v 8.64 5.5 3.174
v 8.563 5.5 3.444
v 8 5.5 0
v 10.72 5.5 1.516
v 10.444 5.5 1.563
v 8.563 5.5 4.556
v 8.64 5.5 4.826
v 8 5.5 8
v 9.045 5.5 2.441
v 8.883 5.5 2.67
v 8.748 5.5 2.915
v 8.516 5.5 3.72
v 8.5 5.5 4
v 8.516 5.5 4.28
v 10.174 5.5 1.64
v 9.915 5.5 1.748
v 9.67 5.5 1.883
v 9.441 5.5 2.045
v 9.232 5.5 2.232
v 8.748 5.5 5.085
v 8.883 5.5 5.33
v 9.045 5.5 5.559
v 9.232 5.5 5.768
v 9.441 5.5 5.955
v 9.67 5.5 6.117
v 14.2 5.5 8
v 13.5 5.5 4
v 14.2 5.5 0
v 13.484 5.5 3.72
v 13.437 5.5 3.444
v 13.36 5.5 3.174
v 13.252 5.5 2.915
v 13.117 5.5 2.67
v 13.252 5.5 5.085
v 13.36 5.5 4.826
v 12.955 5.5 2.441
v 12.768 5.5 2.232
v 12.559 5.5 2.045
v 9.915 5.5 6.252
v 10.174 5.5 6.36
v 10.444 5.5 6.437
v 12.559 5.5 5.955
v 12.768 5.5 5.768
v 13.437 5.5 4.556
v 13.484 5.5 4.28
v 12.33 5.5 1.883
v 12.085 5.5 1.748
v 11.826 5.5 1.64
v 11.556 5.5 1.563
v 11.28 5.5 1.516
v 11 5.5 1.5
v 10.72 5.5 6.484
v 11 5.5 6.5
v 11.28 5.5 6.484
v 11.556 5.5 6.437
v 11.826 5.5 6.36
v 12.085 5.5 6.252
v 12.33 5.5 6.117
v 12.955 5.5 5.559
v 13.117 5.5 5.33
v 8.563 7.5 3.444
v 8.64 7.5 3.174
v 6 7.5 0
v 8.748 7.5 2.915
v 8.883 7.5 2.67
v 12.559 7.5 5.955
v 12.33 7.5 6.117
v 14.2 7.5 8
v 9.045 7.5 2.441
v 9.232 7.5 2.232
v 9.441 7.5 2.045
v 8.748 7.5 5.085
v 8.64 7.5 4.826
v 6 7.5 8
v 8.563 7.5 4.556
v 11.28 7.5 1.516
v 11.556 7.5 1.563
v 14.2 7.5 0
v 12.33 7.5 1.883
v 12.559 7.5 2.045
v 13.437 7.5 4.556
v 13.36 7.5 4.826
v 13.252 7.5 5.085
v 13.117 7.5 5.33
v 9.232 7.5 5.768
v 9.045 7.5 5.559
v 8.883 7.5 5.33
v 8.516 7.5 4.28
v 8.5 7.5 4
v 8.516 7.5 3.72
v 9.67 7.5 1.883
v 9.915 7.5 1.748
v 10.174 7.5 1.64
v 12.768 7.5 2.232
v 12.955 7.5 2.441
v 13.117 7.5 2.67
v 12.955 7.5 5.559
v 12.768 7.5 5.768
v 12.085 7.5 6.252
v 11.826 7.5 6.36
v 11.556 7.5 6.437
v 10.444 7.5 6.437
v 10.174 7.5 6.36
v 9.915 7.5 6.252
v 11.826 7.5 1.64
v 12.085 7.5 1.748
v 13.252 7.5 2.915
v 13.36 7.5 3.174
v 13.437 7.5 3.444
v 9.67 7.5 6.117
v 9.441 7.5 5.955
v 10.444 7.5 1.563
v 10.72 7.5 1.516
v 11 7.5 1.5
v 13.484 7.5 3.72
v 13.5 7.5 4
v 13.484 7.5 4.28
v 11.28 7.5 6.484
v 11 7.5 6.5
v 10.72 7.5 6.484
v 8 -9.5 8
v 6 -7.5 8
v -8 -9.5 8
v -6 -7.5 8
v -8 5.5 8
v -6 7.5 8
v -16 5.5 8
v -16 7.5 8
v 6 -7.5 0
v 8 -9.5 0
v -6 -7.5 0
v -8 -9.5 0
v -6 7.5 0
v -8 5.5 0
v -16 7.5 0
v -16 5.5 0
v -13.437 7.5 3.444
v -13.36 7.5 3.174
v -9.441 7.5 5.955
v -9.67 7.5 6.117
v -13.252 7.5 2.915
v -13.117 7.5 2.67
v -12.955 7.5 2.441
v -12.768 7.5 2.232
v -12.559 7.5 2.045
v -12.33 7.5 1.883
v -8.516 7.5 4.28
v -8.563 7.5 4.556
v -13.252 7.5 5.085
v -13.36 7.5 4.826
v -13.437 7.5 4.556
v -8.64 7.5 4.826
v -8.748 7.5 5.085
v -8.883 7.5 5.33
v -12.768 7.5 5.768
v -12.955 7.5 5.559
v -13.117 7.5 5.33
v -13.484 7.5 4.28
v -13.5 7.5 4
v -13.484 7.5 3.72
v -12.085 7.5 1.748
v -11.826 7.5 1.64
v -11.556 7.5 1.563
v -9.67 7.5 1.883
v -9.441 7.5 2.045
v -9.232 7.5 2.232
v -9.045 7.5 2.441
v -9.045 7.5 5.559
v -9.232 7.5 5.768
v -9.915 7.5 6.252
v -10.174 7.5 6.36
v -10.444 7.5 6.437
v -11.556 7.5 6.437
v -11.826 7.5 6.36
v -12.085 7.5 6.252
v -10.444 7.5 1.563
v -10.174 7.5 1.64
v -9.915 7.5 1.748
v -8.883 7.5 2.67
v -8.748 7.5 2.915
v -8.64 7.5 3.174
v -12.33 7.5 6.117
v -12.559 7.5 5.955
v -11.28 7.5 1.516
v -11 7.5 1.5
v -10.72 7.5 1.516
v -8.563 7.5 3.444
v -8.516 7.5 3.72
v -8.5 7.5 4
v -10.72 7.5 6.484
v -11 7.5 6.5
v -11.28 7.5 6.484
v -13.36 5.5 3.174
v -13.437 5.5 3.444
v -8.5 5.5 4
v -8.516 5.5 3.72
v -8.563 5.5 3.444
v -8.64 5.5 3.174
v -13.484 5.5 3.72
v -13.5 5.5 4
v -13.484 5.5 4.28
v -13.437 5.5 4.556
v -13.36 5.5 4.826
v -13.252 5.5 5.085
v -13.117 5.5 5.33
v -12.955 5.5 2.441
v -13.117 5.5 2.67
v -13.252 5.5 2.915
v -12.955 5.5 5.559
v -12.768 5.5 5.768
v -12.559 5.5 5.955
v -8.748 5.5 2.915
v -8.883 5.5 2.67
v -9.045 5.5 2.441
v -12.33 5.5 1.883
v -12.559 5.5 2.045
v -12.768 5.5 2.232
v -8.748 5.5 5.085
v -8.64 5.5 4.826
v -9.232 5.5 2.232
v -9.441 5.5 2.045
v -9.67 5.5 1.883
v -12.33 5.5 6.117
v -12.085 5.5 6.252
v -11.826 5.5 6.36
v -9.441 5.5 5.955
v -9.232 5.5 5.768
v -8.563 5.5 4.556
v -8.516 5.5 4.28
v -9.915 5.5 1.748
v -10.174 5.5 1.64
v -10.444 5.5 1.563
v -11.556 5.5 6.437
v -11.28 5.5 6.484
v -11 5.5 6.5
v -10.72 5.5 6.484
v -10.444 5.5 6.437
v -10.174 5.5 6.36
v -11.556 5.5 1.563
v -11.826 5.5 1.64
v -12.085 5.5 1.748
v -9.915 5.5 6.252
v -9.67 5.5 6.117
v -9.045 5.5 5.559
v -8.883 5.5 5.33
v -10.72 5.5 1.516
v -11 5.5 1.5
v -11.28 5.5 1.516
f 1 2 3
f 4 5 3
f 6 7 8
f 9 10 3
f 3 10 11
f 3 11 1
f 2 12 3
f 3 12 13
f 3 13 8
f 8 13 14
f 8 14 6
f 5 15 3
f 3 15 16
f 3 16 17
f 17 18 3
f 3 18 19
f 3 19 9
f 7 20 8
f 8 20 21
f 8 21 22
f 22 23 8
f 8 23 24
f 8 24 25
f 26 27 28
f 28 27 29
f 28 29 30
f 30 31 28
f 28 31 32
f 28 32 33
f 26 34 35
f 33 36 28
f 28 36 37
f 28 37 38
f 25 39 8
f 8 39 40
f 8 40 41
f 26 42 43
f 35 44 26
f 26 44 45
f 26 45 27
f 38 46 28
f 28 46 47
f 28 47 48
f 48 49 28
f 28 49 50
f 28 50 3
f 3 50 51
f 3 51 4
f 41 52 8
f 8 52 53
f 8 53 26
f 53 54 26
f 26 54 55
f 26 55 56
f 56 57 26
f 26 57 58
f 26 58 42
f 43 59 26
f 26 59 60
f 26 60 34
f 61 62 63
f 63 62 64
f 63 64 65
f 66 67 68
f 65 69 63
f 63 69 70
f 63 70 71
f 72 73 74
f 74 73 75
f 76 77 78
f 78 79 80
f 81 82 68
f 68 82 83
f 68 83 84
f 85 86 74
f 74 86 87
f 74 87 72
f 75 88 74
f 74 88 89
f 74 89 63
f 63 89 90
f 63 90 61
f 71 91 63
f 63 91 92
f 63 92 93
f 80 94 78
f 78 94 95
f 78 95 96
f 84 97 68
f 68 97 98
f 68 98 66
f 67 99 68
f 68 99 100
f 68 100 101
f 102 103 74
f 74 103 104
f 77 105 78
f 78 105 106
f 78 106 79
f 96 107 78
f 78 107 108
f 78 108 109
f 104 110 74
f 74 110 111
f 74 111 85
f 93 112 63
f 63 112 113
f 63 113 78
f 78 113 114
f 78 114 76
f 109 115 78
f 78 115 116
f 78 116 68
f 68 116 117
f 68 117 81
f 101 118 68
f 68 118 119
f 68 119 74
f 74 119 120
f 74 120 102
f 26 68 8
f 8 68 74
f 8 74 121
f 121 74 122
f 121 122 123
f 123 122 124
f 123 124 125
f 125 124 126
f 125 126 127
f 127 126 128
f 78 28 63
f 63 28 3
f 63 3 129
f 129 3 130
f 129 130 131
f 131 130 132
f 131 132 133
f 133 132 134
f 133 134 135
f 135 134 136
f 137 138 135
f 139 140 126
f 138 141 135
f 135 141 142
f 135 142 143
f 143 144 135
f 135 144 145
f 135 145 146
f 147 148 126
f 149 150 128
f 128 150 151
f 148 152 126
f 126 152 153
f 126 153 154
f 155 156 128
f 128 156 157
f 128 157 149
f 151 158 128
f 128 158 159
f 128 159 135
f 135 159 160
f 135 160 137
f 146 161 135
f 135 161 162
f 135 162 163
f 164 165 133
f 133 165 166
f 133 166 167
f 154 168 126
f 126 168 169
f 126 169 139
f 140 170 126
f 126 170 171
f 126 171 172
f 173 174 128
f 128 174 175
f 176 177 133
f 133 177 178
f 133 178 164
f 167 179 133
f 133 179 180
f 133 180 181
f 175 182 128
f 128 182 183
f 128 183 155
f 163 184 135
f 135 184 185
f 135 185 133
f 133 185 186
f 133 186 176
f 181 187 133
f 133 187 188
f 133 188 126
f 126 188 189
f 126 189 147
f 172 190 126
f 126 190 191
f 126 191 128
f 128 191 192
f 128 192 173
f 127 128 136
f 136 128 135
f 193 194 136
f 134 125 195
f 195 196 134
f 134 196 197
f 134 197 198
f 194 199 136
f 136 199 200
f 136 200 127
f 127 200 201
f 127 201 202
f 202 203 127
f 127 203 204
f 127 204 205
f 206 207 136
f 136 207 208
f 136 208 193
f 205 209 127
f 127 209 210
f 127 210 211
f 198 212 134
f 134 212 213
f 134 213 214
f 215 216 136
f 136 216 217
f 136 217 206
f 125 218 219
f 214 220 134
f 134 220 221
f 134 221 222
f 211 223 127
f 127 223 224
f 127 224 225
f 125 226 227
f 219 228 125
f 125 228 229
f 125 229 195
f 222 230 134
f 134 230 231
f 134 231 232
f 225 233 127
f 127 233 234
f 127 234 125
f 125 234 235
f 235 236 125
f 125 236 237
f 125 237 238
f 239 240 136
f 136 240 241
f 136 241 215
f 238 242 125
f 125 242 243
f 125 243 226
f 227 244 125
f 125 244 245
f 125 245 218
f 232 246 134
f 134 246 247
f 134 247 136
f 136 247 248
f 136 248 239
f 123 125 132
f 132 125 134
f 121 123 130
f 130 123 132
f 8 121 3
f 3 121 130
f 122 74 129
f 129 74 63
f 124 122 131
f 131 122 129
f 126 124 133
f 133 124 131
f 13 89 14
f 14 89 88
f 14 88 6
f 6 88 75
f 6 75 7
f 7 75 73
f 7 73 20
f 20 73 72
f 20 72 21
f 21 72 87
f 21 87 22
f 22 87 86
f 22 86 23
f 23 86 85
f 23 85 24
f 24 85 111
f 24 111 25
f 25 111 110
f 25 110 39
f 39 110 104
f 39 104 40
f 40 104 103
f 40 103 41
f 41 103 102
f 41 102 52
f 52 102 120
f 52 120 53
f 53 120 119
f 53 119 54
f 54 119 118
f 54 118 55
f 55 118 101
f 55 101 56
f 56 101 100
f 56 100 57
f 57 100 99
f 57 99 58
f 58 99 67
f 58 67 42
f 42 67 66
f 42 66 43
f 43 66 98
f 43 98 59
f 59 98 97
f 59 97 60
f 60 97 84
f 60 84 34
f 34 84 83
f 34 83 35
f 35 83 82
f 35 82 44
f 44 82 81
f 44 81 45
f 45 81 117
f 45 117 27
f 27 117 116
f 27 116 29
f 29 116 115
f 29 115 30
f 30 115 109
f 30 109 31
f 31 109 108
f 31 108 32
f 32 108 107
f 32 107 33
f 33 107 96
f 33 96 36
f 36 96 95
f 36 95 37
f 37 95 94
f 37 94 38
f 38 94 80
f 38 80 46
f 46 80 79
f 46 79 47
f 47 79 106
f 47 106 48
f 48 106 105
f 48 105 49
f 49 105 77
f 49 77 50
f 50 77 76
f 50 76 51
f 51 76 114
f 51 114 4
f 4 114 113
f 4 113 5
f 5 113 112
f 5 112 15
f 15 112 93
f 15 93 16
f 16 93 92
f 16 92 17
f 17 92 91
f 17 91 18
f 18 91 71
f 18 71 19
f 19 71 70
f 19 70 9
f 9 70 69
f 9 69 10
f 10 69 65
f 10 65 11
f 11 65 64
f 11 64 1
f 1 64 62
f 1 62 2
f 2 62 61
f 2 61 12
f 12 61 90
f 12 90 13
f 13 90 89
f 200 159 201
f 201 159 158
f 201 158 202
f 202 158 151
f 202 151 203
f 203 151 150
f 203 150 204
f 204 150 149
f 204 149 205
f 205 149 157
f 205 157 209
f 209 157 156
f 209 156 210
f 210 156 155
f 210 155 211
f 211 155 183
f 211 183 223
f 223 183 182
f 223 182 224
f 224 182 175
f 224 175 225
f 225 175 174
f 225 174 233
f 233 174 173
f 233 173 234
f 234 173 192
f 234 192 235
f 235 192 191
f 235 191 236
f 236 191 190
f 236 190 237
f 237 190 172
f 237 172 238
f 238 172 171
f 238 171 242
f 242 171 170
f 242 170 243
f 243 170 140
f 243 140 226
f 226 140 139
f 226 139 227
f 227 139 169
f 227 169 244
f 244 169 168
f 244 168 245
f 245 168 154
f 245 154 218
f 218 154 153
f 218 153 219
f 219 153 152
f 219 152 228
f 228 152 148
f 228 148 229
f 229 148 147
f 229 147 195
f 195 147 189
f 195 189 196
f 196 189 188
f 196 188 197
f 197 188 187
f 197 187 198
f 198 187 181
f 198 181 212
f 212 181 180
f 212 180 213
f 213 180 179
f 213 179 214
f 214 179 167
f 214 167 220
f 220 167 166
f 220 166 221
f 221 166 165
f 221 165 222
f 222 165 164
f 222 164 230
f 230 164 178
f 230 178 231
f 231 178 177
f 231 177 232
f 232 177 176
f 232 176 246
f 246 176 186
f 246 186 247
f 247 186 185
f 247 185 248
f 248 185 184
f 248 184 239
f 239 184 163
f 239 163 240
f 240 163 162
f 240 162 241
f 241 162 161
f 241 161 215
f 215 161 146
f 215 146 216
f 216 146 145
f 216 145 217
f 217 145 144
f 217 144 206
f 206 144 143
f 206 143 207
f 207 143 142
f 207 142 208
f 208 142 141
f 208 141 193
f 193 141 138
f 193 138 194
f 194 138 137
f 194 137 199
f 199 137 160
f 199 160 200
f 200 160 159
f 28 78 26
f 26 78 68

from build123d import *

# Parameters (mm, degrees)
CROQUIS1_W              = 8
CROQUIS1_H              = 2
SALIENTE_EXTRUIR1_DEPTH = 8
CROQUIS2_R              = 2.5
CORTAR_EXTRUIR1_DEPTH   = 2
SKETCH1_W               = 8
SKETCH1_H               = 2
CUT_EXTRUDE1_DEPTH      = 1.8


with BuildPart() as part:
    # Croquis1 → Saliente-Extruir1 (new body)
    with BuildSketch(Plane.XY):
        with Locations((-12, 6.5)):
            Rectangle(CROQUIS1_W, CROQUIS1_H)
        Polygon((-6, 7.5), (-8, 7.5), (-8, 5.5), (-8, -9.5), (8, -9.5), (8, 5.5), (8, 7.5), (6, 7.5), (6, -7.5), (-6, -7.5), align=None)
        with Locations((12, 6.5)):
            Rectangle(CROQUIS1_W, CROQUIS1_H)
    extrude(amount=SALIENTE_EXTRUIR1_DEPTH)

    # Croquis2 → Cortar-Extruir1 (cut)
    with BuildSketch(Plane(origin=(0, 7.5, 0), x_dir=(1, 0, 0), z_dir=(0, 1, 0))):
        with Locations((-11, -4)):
            Circle(CROQUIS2_R)
        with Locations((11, -4)):
            Circle(CROQUIS2_R)
    extrude(amount=-CORTAR_EXTRUIR1_DEPTH, mode=Mode.SUBTRACT)

    # Sketch1 → Cut-Extrude1 (cut)
    with BuildSketch(Plane(origin=(16, 0, 0), x_dir=(0, 0, -1), z_dir=(1, 0, 0))):
        with Locations((-4, 6.5)):
            Rectangle(SKETCH1_W, SKETCH1_H)
    extrude(amount=-CUT_EXTRUDE1_DEPTH, mode=Mode.SUBTRACT)


solid = part.part
